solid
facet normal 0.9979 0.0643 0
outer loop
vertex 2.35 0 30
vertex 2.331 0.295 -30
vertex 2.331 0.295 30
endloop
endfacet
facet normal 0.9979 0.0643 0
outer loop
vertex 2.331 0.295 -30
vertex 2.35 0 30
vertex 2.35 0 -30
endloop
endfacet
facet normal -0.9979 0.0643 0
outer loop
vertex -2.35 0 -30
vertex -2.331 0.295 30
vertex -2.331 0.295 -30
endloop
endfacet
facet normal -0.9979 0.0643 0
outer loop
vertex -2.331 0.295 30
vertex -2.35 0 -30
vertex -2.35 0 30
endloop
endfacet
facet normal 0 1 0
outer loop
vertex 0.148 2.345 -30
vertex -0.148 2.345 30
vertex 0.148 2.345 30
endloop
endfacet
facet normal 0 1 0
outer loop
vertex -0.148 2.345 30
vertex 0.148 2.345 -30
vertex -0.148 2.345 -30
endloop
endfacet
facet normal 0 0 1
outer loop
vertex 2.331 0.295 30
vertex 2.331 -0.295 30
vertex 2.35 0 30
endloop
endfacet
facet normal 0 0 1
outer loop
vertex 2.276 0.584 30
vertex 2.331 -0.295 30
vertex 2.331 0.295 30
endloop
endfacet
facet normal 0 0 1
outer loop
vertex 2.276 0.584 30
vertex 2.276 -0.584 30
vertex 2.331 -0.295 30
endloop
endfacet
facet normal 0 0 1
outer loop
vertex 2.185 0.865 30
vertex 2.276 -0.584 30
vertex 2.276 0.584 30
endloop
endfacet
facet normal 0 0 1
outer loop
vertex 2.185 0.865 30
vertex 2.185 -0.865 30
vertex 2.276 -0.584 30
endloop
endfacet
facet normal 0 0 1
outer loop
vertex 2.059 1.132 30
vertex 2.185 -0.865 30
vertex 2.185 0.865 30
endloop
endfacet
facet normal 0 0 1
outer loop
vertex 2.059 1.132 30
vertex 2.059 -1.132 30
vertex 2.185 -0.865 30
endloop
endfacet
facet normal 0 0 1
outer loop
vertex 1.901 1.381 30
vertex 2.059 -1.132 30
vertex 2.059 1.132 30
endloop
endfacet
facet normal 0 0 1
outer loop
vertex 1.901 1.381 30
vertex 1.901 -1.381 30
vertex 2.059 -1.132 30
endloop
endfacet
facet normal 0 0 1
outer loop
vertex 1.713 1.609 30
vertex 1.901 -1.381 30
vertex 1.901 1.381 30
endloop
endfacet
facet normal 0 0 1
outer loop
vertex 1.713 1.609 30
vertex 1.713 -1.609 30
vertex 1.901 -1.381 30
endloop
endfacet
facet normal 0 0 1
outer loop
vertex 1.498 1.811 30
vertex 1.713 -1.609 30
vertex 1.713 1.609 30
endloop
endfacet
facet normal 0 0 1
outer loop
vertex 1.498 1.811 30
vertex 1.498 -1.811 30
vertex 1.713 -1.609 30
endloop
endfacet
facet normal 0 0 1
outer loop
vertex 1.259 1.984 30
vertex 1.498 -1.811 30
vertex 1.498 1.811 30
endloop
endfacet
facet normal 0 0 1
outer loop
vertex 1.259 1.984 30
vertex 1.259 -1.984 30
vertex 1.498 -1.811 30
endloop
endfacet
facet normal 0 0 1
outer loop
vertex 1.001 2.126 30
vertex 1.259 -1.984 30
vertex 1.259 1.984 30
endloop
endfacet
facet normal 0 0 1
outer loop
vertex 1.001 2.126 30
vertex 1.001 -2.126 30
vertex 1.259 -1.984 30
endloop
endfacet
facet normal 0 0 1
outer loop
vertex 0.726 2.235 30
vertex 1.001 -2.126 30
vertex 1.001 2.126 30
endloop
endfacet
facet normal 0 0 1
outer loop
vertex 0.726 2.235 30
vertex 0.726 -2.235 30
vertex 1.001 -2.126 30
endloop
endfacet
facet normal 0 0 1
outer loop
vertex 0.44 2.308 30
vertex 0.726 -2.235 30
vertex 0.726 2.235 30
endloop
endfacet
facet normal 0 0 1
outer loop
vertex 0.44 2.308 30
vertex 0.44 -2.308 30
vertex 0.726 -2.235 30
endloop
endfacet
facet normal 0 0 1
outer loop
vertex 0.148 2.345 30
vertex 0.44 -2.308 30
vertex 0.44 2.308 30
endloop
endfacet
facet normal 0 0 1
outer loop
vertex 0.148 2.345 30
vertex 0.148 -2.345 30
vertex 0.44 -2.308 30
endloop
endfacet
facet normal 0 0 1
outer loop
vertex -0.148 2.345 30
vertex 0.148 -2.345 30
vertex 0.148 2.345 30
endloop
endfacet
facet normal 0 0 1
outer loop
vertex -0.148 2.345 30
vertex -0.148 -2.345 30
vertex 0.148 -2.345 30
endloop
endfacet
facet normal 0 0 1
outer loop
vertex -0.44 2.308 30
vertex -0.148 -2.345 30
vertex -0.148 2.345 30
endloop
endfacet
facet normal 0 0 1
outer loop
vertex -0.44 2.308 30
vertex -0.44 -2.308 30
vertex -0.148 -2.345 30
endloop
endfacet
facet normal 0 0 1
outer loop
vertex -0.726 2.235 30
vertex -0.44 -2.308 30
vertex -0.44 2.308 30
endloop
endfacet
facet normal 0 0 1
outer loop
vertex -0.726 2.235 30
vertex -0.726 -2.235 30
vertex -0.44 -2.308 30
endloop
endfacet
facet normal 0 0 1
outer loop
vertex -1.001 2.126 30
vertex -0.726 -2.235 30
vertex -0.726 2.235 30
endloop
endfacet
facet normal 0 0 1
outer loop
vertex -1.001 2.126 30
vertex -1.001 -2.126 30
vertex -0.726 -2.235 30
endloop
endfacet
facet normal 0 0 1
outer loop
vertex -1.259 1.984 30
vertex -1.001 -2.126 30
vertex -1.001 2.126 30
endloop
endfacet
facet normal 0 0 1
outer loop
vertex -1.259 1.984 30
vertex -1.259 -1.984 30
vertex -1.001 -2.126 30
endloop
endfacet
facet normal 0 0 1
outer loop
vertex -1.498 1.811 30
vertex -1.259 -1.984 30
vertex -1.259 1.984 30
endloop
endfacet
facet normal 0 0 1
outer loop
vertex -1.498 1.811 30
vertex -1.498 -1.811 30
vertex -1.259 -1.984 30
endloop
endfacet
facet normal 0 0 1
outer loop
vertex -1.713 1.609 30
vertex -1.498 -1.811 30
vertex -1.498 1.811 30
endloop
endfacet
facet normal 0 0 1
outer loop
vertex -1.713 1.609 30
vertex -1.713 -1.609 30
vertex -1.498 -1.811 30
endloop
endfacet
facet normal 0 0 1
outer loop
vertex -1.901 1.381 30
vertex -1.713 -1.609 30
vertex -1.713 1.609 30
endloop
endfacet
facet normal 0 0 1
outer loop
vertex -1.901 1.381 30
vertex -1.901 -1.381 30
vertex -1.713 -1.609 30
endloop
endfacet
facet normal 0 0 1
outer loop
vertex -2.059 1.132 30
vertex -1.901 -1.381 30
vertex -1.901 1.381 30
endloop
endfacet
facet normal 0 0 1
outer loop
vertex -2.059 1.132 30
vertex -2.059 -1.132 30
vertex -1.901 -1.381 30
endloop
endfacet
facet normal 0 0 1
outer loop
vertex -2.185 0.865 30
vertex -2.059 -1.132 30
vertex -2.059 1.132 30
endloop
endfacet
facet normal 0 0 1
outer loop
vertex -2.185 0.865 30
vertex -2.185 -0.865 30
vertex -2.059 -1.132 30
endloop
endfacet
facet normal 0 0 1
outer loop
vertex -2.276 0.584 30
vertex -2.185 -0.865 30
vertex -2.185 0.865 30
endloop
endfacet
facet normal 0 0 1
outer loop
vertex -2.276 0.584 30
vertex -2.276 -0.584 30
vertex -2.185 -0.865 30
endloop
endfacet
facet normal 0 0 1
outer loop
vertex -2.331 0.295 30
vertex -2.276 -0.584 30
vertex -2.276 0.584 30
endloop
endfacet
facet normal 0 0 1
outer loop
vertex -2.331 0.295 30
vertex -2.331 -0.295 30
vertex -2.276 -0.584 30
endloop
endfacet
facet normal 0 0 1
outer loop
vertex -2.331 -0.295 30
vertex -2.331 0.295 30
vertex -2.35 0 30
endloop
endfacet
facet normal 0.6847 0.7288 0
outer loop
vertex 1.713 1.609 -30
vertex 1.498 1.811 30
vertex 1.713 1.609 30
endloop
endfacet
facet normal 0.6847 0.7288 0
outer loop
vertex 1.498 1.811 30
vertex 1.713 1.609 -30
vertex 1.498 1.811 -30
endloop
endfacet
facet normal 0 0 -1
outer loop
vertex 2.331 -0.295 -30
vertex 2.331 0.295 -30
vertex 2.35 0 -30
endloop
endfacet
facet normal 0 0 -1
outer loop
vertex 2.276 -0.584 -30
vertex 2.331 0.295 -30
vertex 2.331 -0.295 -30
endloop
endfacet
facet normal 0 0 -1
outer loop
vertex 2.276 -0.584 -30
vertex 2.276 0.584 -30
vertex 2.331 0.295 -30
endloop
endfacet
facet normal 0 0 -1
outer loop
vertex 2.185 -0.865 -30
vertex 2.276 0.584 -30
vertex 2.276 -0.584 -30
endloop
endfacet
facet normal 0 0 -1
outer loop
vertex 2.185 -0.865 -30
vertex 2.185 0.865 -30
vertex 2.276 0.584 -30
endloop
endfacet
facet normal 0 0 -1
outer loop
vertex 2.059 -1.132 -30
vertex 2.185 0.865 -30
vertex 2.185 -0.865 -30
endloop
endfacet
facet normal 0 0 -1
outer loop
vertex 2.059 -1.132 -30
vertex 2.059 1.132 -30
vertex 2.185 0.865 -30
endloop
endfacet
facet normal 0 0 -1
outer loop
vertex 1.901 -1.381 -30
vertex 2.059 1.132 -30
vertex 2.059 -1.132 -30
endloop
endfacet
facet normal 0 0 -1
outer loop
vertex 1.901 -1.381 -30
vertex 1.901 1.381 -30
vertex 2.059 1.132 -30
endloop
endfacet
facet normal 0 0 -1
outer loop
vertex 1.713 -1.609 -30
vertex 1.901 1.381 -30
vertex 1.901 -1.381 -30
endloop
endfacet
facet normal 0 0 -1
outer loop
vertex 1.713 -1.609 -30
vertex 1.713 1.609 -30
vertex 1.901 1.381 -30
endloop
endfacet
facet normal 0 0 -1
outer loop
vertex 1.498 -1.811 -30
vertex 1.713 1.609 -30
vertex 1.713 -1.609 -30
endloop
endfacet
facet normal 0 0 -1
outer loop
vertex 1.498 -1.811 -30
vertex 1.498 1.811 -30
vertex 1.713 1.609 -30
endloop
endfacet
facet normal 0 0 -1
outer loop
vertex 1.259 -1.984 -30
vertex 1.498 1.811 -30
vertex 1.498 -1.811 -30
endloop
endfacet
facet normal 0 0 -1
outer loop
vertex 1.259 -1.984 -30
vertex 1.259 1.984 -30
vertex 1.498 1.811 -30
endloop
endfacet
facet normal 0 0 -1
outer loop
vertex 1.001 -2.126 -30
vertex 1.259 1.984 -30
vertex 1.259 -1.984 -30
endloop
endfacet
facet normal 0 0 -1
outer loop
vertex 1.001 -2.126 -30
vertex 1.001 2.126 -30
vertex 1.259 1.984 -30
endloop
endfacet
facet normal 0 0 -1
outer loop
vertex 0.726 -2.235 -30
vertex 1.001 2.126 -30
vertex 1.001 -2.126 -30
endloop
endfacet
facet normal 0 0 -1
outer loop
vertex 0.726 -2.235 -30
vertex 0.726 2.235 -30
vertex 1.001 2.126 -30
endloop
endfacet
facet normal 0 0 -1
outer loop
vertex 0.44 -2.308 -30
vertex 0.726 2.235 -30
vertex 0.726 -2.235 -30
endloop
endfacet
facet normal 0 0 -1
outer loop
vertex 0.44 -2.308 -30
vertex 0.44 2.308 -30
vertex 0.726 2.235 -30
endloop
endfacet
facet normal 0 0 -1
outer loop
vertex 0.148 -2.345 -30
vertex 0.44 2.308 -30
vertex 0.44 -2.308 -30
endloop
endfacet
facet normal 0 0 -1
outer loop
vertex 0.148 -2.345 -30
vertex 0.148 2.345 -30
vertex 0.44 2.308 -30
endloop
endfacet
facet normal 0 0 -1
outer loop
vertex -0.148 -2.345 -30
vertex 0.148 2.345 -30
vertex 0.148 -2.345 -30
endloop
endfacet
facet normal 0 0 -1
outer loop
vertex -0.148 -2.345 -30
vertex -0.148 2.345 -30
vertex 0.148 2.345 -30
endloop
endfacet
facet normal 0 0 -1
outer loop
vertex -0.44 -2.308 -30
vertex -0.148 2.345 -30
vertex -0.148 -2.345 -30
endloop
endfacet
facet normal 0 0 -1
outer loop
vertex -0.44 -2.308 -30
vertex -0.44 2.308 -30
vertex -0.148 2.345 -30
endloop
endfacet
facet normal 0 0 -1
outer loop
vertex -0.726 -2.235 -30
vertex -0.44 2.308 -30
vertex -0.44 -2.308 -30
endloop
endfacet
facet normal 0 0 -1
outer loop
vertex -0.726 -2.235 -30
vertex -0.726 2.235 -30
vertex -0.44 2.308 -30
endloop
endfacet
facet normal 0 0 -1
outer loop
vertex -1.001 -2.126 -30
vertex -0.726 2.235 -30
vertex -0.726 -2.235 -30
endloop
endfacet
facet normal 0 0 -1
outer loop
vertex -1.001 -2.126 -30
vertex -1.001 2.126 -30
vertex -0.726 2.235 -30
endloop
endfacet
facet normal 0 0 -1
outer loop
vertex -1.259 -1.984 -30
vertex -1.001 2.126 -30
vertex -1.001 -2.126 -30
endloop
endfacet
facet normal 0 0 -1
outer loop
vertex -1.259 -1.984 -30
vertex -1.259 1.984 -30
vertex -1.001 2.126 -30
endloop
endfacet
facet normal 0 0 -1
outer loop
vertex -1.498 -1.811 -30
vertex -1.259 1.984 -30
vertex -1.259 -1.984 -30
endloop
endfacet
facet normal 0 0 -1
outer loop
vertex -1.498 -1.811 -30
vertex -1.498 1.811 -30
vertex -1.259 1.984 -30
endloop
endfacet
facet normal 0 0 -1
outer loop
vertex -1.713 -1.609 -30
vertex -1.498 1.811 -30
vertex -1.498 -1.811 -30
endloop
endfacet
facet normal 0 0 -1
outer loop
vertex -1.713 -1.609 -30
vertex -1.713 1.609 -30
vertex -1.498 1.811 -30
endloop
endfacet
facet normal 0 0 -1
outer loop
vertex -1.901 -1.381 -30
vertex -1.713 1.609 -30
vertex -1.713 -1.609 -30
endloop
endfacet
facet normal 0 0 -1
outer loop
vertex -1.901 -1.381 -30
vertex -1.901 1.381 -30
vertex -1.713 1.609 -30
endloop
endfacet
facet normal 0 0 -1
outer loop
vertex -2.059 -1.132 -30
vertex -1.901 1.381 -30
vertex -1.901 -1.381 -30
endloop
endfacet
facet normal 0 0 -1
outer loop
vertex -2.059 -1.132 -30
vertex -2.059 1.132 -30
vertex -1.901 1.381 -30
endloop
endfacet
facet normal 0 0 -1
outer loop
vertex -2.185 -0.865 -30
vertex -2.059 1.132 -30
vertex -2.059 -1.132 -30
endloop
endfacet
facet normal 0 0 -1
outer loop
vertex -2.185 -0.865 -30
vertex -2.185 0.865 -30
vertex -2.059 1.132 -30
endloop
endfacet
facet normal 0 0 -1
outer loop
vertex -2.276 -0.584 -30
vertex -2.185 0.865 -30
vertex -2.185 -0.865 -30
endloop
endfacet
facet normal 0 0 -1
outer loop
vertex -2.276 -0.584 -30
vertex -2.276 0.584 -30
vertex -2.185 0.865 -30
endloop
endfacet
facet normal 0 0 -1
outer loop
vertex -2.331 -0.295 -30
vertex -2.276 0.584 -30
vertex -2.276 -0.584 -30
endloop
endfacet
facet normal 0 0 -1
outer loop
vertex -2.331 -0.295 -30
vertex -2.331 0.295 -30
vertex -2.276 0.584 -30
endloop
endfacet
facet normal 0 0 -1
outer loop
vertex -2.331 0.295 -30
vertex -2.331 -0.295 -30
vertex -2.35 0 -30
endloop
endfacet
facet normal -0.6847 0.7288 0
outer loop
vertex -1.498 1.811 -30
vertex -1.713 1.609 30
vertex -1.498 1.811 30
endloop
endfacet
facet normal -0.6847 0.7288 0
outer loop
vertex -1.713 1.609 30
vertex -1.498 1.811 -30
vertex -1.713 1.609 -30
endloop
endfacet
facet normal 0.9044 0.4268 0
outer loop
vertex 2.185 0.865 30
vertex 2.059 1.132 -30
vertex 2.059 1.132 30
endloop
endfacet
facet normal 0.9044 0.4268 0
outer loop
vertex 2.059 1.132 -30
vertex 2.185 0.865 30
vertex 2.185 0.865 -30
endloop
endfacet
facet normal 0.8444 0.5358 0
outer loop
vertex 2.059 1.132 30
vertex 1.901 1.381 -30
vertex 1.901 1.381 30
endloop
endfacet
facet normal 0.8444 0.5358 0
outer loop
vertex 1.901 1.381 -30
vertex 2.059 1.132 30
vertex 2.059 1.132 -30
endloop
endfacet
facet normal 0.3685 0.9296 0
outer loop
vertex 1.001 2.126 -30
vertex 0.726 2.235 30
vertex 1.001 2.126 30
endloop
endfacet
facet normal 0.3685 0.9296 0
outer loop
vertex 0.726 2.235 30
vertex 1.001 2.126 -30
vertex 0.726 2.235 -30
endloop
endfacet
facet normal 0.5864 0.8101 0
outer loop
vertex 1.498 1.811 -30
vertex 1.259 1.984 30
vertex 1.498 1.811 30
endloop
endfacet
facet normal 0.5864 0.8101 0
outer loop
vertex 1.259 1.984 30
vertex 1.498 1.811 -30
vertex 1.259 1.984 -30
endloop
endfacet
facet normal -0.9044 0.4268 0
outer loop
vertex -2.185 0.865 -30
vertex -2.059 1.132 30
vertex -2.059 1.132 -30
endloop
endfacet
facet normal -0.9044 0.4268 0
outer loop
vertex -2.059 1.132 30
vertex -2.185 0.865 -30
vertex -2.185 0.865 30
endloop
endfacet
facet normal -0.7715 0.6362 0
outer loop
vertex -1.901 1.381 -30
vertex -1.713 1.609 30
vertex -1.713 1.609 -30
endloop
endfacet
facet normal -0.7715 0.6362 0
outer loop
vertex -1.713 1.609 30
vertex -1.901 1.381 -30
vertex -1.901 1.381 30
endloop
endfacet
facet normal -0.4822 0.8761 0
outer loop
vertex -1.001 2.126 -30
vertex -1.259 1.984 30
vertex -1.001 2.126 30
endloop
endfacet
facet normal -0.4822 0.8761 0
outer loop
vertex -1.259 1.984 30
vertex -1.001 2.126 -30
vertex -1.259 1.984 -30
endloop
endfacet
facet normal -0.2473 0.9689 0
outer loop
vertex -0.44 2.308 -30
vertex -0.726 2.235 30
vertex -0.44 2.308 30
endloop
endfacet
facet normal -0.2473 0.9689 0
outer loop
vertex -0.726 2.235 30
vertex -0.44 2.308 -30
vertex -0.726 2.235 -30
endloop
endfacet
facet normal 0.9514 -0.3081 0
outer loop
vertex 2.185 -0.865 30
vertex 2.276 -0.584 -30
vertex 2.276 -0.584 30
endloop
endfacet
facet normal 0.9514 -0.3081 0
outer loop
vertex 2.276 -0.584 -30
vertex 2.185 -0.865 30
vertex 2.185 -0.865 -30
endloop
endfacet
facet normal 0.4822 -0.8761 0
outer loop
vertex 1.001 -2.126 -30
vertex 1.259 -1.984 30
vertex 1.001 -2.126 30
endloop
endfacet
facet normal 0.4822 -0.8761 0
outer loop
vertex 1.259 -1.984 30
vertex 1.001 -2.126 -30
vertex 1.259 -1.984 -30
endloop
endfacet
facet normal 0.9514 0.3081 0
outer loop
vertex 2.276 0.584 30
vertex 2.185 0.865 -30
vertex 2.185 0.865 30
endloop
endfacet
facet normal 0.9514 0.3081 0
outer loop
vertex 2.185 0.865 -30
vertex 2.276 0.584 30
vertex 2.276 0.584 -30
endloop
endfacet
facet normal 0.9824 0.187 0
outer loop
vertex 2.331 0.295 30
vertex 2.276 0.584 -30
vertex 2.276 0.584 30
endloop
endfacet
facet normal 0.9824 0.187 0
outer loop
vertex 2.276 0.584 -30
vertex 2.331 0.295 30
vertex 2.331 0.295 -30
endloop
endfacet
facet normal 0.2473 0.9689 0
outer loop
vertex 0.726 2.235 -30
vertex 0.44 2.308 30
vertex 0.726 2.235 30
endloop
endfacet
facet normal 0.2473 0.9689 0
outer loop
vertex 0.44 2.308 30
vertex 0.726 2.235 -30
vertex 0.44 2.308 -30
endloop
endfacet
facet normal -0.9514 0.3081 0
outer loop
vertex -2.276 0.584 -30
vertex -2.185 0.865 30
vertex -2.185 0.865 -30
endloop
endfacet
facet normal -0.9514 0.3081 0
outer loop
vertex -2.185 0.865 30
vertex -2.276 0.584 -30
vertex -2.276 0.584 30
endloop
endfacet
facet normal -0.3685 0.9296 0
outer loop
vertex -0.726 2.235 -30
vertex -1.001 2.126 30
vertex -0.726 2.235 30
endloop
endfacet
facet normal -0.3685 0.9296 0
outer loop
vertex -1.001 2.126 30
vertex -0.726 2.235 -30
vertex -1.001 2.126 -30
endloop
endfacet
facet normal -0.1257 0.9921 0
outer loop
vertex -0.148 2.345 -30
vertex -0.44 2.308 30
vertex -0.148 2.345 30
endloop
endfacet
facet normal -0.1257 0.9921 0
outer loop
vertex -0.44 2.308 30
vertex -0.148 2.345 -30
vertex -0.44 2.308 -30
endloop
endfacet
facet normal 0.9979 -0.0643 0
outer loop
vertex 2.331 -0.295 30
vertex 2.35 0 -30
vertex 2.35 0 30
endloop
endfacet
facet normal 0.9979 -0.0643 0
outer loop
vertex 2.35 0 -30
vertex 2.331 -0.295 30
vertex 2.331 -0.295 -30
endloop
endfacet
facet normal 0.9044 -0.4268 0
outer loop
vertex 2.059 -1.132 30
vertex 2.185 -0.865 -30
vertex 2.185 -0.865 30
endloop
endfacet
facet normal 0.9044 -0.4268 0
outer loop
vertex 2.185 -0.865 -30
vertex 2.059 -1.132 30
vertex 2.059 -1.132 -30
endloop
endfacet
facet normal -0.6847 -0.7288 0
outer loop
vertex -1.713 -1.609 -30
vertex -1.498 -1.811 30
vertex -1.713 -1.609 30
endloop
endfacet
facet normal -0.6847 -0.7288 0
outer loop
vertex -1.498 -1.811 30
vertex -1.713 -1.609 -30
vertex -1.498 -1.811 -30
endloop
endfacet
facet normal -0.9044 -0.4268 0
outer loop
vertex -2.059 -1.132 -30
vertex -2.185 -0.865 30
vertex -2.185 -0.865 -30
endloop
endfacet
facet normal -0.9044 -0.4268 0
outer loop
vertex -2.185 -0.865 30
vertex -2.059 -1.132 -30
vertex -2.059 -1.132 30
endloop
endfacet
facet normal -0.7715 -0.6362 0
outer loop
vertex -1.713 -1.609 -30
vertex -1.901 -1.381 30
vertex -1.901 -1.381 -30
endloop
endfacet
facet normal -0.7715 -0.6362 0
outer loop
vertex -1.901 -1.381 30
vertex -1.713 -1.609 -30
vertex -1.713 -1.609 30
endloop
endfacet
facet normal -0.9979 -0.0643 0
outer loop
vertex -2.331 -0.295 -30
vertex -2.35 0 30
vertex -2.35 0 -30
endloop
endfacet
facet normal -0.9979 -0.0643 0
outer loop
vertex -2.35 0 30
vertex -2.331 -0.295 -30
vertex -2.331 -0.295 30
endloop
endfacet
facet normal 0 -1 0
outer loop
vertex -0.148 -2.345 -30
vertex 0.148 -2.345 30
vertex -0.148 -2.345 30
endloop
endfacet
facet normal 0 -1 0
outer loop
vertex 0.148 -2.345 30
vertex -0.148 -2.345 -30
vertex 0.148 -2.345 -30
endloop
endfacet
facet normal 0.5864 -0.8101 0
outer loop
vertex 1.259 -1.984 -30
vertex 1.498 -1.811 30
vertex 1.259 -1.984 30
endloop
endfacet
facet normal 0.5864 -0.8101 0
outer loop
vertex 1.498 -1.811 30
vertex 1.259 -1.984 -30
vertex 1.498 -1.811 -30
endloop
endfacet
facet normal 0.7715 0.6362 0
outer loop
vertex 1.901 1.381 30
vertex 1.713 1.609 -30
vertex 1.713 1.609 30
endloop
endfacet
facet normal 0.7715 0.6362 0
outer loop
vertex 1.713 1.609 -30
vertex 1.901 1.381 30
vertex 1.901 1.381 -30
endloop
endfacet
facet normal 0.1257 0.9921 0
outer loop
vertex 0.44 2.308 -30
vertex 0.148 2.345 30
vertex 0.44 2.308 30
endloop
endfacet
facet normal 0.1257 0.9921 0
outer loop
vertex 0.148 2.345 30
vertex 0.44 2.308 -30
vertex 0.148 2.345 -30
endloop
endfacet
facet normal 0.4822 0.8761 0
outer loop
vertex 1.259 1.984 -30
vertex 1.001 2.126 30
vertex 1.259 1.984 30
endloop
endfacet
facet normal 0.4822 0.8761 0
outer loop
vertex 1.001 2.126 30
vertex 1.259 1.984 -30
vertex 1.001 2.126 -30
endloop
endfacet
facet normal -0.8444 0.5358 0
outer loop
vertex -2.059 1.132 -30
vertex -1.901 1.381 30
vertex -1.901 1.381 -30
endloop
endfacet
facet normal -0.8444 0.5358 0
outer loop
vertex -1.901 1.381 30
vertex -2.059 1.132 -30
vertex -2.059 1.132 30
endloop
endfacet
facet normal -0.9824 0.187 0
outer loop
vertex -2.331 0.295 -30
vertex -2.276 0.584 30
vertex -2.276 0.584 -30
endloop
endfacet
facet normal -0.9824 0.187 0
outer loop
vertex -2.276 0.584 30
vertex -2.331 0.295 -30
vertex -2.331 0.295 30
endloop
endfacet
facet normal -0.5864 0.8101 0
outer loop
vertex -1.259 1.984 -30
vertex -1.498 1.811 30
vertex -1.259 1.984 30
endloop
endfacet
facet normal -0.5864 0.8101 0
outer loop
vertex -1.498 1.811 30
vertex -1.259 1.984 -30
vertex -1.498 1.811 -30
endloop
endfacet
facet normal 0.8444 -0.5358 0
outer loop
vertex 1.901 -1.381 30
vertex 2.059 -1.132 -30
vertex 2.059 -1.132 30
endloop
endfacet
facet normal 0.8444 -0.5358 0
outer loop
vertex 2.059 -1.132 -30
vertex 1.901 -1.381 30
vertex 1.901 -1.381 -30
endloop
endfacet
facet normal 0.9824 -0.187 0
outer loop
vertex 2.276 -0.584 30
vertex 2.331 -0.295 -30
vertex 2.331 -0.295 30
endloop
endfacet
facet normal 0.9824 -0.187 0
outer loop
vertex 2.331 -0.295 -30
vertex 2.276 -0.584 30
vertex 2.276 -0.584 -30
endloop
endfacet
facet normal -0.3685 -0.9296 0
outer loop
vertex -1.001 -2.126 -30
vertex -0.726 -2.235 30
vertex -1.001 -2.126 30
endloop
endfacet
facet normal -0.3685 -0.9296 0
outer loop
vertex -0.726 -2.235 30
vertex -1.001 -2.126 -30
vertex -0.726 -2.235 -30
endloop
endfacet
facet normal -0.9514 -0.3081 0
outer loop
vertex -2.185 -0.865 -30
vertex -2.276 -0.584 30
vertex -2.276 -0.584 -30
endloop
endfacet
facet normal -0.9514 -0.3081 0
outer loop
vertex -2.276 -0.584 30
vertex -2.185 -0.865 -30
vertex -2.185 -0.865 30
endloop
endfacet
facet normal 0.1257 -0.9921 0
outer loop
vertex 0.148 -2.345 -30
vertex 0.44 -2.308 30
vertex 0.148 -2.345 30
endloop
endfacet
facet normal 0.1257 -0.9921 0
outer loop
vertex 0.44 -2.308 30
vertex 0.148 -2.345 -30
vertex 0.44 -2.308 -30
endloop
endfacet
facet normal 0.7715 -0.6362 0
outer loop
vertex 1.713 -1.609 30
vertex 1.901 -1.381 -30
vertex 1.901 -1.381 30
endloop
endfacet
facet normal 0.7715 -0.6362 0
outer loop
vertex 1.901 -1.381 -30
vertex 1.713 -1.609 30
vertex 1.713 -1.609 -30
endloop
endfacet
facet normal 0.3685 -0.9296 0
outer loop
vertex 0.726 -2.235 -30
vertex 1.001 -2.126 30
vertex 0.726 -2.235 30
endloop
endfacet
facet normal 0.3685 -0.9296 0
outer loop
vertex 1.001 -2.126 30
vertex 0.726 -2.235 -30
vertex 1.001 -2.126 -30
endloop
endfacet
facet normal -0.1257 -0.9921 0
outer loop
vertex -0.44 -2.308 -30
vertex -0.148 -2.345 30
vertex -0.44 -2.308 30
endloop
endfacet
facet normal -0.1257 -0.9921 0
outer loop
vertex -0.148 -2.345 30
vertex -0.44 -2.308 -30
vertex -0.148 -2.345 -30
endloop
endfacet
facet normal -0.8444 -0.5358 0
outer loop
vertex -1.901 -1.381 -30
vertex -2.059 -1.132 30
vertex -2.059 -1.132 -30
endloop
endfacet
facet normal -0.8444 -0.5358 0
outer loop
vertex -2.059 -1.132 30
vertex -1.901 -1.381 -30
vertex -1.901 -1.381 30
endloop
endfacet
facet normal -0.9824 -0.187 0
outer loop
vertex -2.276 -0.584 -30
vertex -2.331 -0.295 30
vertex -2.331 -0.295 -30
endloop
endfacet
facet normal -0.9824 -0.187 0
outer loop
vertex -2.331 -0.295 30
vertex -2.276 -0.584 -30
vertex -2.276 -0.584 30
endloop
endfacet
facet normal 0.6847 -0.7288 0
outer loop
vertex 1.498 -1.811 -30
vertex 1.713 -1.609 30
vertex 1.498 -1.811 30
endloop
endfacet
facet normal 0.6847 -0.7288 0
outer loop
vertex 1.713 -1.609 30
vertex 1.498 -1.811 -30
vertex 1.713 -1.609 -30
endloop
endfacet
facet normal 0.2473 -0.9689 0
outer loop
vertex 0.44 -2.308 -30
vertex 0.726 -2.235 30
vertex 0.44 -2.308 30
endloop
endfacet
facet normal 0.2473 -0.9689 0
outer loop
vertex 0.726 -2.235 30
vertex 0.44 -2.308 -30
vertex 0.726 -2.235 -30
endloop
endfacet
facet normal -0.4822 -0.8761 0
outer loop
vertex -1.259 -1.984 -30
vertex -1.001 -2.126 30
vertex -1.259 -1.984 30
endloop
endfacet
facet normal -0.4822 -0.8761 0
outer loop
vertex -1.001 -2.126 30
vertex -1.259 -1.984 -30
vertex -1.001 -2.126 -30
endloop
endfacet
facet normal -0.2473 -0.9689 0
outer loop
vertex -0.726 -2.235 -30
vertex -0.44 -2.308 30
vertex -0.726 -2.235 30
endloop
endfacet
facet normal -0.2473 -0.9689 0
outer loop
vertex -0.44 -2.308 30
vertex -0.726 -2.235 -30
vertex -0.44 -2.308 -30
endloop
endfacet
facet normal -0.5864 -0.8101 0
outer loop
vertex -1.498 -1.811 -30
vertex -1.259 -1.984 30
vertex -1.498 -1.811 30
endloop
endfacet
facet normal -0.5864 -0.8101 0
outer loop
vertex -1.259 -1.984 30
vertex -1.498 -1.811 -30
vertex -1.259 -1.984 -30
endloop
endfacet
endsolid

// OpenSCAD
$fn = 50;


difference() {
	union() {
		translate(v = [0, 0, -30.0000000000]) {
			cylinder(h = 60, r = 2.3500000000);
		}
	}
	union() {
		translate(v = [0, 0, -100.0000000000]) {
			cylinder(h = 200, r = 0);
		}
	}
}
